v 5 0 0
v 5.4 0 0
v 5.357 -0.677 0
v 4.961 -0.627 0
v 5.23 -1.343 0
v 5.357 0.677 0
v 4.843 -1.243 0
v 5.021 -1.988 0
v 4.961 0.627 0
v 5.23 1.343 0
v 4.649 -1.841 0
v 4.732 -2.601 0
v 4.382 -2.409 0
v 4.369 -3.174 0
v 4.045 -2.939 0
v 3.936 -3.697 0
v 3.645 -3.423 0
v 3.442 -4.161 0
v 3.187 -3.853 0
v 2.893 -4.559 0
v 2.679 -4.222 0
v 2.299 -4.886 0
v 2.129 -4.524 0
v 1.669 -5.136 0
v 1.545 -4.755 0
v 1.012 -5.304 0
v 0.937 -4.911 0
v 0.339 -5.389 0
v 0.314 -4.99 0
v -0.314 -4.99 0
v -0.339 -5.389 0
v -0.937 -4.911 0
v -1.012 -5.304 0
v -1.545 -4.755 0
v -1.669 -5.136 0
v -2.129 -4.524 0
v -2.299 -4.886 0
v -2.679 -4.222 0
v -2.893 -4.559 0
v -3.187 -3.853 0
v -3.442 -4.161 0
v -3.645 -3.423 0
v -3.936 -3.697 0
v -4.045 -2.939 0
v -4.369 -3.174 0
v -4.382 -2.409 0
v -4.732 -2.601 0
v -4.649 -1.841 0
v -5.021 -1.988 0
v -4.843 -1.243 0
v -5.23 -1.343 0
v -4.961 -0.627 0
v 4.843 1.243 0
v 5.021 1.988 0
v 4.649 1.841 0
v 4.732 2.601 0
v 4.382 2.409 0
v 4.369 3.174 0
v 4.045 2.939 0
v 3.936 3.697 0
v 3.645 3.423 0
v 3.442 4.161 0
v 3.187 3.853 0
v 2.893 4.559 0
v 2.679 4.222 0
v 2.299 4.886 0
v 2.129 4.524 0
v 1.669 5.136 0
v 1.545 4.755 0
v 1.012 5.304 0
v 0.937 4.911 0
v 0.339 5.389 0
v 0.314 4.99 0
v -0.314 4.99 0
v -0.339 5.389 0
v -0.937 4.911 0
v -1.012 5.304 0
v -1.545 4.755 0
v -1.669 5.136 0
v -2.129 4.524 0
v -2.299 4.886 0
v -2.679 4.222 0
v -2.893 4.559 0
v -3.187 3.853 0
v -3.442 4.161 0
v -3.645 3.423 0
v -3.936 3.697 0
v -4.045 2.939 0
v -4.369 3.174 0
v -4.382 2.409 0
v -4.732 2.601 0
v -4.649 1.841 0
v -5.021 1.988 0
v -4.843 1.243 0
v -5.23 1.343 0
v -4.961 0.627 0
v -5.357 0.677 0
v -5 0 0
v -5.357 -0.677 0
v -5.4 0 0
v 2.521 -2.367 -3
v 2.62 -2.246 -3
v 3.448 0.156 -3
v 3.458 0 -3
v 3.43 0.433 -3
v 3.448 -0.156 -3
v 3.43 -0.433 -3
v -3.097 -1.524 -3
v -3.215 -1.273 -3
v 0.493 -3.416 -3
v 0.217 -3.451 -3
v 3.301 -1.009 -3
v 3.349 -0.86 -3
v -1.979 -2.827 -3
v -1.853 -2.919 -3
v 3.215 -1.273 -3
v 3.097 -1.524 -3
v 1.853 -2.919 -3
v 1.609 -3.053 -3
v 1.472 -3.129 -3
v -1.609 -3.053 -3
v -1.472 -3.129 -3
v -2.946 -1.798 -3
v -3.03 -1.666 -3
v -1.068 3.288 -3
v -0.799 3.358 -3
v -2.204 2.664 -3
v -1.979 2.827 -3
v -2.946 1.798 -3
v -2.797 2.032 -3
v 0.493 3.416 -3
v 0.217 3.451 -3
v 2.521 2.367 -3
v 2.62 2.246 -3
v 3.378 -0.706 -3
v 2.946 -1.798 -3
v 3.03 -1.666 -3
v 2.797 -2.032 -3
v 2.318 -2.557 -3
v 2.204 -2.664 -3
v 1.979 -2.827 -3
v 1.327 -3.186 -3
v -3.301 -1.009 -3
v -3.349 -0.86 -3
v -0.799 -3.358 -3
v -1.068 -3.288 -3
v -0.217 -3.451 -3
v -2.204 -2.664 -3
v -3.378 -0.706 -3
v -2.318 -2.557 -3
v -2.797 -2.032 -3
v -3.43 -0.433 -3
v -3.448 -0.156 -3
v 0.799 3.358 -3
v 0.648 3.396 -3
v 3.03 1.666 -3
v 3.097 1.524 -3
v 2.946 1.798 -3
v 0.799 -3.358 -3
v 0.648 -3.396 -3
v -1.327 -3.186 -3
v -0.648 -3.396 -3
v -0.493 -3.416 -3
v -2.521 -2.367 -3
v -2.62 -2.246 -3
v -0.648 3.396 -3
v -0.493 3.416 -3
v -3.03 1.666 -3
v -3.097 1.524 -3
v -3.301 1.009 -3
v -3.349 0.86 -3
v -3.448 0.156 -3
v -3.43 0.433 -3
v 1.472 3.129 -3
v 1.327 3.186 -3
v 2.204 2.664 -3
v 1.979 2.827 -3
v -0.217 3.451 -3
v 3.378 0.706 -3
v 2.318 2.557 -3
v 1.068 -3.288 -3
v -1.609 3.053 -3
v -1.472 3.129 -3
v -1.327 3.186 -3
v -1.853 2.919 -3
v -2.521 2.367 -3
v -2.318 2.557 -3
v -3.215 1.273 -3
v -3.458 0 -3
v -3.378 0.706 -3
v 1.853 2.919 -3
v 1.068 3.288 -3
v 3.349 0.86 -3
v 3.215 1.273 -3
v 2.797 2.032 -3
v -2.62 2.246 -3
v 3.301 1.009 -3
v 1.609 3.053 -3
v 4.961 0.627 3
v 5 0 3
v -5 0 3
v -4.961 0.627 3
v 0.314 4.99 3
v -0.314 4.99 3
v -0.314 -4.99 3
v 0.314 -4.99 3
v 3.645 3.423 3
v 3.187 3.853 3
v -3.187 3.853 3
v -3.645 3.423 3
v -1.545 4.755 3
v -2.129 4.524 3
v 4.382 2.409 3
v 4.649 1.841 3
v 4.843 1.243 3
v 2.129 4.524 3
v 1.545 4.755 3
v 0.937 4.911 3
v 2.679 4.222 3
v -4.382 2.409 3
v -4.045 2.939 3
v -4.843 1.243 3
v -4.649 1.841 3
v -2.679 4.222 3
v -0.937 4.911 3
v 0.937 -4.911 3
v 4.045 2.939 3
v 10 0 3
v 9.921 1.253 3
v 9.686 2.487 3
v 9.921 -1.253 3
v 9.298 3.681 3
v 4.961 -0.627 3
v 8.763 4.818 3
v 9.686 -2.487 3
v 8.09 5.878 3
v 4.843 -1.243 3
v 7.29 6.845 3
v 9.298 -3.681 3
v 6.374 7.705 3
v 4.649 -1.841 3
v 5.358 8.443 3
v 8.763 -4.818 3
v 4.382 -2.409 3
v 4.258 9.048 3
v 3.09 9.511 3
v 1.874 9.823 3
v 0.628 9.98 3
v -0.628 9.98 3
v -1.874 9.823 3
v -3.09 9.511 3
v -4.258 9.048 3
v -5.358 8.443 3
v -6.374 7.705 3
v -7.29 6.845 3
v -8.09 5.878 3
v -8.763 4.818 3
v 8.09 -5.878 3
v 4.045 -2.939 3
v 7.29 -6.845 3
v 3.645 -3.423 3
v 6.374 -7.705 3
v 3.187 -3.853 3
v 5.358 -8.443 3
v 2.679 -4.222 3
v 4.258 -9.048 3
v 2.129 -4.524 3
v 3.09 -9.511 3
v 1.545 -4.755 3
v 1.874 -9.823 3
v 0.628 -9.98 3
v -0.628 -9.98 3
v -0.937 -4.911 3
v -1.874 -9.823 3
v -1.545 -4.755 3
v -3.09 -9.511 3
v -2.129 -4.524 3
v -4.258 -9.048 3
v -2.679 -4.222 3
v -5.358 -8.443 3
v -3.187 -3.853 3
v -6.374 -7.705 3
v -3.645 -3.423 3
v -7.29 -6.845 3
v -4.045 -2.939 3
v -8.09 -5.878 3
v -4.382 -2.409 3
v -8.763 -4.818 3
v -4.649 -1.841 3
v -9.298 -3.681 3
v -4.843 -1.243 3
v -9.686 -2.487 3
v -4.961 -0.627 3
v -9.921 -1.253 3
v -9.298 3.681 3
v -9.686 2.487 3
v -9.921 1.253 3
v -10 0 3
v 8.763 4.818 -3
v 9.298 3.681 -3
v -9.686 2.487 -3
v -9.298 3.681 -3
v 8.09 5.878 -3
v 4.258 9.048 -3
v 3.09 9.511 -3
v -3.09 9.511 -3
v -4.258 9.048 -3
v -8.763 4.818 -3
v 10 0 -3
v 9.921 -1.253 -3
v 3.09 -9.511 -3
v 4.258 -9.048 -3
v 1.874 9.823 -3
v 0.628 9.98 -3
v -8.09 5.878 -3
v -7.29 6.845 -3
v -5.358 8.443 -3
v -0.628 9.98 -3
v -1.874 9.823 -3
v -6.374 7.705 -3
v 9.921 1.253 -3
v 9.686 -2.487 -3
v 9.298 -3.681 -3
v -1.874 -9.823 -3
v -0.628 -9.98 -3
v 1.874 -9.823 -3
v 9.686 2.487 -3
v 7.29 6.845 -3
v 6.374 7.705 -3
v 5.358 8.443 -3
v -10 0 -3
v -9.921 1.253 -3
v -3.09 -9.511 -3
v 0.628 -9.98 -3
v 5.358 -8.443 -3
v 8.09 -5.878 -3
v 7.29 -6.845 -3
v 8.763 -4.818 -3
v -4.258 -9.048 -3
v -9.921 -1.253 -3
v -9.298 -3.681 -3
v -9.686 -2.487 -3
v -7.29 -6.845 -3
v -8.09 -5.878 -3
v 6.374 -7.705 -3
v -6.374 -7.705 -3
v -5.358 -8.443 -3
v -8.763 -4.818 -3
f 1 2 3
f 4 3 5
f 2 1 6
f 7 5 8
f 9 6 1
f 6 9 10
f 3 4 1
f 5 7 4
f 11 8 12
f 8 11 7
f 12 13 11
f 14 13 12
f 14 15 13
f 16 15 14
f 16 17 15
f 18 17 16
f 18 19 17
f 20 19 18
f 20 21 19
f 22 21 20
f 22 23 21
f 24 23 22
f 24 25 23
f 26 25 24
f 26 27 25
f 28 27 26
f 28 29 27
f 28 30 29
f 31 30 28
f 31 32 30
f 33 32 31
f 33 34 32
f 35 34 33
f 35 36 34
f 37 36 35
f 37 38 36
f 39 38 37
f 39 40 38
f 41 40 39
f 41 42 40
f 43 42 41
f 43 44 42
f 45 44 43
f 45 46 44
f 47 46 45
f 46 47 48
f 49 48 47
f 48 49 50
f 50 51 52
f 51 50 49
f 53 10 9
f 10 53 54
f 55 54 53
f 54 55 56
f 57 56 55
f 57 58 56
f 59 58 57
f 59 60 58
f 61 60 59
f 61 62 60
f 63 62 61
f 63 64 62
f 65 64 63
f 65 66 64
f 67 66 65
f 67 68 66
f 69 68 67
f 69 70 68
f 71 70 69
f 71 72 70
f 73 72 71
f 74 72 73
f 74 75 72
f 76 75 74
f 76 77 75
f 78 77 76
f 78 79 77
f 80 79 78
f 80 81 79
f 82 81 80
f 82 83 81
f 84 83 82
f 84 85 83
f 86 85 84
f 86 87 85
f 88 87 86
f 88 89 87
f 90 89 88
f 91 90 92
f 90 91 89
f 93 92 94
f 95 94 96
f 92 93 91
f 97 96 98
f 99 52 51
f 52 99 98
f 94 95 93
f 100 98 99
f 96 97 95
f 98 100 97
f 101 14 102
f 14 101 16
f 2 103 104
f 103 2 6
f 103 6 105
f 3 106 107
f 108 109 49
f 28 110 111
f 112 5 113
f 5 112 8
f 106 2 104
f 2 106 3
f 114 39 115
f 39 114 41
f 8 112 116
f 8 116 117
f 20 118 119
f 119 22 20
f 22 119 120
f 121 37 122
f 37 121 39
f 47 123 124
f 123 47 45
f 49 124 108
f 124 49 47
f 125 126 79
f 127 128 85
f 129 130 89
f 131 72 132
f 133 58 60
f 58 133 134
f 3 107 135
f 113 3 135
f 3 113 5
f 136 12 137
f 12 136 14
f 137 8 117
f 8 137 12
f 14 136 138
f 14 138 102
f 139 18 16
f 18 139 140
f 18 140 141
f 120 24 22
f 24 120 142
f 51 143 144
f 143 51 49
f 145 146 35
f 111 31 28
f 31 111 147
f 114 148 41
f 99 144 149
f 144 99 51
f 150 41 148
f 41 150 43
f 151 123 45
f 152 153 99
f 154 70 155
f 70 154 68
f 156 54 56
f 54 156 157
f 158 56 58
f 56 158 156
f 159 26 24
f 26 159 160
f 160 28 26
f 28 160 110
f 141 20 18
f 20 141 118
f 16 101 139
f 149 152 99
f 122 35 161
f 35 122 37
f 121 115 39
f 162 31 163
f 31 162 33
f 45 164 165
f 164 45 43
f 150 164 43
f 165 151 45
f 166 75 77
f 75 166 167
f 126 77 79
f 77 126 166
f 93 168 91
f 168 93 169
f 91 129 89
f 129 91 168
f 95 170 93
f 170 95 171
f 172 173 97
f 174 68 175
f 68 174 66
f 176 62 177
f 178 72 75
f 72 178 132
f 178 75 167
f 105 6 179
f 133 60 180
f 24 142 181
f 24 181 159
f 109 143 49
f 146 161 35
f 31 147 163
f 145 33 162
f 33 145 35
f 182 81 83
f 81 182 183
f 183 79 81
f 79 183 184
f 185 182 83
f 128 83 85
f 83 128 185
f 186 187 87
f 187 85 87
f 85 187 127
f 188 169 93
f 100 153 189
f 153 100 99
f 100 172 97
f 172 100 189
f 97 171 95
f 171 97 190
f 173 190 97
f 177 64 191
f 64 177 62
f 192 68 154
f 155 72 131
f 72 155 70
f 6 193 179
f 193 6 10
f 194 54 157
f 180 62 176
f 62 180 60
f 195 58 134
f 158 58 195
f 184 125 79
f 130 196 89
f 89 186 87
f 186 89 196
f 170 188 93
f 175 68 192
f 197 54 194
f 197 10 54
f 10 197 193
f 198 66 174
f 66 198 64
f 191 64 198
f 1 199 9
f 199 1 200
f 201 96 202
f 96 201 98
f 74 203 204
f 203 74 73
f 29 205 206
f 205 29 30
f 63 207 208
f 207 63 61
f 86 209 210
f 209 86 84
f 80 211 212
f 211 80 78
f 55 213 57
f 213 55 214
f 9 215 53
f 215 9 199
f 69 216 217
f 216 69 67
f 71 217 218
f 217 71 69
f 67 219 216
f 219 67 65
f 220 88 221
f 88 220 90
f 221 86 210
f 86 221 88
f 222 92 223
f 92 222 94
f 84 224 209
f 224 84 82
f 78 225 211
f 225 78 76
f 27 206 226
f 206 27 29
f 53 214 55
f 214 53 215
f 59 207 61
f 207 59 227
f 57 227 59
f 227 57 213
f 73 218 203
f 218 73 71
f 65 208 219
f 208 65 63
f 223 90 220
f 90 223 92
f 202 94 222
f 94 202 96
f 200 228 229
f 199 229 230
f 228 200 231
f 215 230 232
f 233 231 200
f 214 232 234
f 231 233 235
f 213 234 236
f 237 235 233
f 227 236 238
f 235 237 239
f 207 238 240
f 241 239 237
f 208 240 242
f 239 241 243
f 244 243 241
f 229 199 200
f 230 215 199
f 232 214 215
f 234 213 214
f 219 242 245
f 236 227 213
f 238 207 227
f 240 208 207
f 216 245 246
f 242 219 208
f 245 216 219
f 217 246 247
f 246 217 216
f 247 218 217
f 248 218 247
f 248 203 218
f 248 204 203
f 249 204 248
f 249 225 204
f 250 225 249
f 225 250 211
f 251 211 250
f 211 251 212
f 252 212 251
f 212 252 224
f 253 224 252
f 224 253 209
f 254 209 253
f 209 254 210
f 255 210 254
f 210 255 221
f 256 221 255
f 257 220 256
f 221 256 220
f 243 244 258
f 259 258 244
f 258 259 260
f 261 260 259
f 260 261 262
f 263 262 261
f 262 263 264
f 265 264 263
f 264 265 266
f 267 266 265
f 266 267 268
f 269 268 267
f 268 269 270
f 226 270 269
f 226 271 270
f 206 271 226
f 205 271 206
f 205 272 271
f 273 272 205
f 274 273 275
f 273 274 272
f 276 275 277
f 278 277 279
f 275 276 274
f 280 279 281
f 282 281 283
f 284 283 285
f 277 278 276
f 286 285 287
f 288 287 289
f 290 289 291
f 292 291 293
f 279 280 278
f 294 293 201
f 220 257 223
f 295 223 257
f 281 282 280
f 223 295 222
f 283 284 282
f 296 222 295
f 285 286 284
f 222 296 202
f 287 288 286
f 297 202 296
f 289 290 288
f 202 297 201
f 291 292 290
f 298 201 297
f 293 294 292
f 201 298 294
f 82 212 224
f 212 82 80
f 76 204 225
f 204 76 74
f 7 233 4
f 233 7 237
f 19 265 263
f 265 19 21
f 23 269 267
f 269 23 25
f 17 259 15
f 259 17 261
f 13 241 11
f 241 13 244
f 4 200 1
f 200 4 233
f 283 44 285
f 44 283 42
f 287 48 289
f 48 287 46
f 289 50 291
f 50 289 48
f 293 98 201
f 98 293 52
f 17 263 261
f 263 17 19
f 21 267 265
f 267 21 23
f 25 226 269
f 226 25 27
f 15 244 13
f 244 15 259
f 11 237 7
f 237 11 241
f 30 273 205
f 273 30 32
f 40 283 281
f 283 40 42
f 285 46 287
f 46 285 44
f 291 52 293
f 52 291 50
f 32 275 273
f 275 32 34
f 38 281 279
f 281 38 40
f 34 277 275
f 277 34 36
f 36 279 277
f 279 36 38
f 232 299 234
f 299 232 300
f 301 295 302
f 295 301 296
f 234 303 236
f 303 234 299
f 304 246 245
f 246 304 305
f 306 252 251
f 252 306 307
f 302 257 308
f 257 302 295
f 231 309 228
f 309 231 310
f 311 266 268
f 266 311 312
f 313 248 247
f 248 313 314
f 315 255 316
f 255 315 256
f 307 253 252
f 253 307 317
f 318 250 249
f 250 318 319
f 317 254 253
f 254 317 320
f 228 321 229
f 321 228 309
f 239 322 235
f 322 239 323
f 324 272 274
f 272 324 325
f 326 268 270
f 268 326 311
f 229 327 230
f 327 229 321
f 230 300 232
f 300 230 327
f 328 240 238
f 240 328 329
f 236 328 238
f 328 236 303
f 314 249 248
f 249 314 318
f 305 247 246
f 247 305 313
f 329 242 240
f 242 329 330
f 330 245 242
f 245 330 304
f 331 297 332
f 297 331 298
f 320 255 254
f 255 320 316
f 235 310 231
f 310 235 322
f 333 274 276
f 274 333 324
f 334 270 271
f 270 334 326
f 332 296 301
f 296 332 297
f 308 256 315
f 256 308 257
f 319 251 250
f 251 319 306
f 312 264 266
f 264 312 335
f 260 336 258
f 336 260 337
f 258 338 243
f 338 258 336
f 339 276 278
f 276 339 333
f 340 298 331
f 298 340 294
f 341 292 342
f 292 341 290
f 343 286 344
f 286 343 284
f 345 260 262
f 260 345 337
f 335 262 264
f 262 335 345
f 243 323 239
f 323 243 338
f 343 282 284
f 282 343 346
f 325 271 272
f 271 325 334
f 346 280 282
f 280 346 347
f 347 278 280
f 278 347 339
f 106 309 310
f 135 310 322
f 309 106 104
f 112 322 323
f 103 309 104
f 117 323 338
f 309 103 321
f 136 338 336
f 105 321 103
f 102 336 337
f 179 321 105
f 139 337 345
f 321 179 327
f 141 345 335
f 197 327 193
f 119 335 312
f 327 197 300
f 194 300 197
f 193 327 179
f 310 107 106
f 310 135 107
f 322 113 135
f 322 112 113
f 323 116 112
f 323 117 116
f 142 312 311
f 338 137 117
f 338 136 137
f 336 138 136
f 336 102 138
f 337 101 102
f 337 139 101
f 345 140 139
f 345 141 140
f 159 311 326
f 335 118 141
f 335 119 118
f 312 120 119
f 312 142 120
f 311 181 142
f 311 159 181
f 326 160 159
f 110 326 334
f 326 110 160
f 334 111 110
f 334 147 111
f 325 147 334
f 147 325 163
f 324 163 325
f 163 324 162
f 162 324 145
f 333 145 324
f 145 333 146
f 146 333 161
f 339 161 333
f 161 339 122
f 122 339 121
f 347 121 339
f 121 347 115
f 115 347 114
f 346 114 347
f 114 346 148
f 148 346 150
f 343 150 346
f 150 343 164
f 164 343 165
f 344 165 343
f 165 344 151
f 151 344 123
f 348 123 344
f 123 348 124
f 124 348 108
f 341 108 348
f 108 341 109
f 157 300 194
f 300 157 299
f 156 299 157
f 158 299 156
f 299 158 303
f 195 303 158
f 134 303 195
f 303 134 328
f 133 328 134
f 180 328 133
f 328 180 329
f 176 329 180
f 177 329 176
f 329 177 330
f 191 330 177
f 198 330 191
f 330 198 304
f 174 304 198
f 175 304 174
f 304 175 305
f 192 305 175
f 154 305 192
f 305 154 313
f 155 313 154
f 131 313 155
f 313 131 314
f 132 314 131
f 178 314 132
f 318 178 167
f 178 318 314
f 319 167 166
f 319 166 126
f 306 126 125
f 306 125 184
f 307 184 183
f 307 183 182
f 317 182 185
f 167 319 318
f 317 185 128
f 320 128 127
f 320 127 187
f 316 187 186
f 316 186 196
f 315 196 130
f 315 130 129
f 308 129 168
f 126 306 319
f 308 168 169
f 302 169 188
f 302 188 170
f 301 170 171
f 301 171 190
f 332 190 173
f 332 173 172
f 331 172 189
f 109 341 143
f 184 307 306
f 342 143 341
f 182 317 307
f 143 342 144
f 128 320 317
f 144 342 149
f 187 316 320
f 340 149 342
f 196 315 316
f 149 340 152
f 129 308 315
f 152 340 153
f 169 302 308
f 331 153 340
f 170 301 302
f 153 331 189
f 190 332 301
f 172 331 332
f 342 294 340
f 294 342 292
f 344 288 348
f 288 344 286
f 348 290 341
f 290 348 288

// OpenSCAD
$fn = 50;

difference() {
	union() {
		translate(v = [0, 0, -3.0]) {
			cylinder(h = 6, r = 10.0);
		}
	}
	union() {
		translate(v = [0, 0, 0]) {
			rotate(a = [0, 0, 0]) {
				difference() {
					union() {
						translate(v = [0, 0, -6.0]) {
							cylinder(h = 6, r = 2.6);
						}
						translate(v = [0, 0, -3.9]) {
							cylinder(h = 3.9, r1 = 2.875, r2 = 5.4);
						}
						translate(v = [0, 0, -6.0]) {
							cylinder(h = 6, r = 2.875);
						}
						translate(v = [0, 0, -6.0]) {
							cylinder(h = 6, r = 2.6);
						}
					}
					union();
				}
			}
		}
		#cylinder(h = 3, r = 5.0);
	}
}
